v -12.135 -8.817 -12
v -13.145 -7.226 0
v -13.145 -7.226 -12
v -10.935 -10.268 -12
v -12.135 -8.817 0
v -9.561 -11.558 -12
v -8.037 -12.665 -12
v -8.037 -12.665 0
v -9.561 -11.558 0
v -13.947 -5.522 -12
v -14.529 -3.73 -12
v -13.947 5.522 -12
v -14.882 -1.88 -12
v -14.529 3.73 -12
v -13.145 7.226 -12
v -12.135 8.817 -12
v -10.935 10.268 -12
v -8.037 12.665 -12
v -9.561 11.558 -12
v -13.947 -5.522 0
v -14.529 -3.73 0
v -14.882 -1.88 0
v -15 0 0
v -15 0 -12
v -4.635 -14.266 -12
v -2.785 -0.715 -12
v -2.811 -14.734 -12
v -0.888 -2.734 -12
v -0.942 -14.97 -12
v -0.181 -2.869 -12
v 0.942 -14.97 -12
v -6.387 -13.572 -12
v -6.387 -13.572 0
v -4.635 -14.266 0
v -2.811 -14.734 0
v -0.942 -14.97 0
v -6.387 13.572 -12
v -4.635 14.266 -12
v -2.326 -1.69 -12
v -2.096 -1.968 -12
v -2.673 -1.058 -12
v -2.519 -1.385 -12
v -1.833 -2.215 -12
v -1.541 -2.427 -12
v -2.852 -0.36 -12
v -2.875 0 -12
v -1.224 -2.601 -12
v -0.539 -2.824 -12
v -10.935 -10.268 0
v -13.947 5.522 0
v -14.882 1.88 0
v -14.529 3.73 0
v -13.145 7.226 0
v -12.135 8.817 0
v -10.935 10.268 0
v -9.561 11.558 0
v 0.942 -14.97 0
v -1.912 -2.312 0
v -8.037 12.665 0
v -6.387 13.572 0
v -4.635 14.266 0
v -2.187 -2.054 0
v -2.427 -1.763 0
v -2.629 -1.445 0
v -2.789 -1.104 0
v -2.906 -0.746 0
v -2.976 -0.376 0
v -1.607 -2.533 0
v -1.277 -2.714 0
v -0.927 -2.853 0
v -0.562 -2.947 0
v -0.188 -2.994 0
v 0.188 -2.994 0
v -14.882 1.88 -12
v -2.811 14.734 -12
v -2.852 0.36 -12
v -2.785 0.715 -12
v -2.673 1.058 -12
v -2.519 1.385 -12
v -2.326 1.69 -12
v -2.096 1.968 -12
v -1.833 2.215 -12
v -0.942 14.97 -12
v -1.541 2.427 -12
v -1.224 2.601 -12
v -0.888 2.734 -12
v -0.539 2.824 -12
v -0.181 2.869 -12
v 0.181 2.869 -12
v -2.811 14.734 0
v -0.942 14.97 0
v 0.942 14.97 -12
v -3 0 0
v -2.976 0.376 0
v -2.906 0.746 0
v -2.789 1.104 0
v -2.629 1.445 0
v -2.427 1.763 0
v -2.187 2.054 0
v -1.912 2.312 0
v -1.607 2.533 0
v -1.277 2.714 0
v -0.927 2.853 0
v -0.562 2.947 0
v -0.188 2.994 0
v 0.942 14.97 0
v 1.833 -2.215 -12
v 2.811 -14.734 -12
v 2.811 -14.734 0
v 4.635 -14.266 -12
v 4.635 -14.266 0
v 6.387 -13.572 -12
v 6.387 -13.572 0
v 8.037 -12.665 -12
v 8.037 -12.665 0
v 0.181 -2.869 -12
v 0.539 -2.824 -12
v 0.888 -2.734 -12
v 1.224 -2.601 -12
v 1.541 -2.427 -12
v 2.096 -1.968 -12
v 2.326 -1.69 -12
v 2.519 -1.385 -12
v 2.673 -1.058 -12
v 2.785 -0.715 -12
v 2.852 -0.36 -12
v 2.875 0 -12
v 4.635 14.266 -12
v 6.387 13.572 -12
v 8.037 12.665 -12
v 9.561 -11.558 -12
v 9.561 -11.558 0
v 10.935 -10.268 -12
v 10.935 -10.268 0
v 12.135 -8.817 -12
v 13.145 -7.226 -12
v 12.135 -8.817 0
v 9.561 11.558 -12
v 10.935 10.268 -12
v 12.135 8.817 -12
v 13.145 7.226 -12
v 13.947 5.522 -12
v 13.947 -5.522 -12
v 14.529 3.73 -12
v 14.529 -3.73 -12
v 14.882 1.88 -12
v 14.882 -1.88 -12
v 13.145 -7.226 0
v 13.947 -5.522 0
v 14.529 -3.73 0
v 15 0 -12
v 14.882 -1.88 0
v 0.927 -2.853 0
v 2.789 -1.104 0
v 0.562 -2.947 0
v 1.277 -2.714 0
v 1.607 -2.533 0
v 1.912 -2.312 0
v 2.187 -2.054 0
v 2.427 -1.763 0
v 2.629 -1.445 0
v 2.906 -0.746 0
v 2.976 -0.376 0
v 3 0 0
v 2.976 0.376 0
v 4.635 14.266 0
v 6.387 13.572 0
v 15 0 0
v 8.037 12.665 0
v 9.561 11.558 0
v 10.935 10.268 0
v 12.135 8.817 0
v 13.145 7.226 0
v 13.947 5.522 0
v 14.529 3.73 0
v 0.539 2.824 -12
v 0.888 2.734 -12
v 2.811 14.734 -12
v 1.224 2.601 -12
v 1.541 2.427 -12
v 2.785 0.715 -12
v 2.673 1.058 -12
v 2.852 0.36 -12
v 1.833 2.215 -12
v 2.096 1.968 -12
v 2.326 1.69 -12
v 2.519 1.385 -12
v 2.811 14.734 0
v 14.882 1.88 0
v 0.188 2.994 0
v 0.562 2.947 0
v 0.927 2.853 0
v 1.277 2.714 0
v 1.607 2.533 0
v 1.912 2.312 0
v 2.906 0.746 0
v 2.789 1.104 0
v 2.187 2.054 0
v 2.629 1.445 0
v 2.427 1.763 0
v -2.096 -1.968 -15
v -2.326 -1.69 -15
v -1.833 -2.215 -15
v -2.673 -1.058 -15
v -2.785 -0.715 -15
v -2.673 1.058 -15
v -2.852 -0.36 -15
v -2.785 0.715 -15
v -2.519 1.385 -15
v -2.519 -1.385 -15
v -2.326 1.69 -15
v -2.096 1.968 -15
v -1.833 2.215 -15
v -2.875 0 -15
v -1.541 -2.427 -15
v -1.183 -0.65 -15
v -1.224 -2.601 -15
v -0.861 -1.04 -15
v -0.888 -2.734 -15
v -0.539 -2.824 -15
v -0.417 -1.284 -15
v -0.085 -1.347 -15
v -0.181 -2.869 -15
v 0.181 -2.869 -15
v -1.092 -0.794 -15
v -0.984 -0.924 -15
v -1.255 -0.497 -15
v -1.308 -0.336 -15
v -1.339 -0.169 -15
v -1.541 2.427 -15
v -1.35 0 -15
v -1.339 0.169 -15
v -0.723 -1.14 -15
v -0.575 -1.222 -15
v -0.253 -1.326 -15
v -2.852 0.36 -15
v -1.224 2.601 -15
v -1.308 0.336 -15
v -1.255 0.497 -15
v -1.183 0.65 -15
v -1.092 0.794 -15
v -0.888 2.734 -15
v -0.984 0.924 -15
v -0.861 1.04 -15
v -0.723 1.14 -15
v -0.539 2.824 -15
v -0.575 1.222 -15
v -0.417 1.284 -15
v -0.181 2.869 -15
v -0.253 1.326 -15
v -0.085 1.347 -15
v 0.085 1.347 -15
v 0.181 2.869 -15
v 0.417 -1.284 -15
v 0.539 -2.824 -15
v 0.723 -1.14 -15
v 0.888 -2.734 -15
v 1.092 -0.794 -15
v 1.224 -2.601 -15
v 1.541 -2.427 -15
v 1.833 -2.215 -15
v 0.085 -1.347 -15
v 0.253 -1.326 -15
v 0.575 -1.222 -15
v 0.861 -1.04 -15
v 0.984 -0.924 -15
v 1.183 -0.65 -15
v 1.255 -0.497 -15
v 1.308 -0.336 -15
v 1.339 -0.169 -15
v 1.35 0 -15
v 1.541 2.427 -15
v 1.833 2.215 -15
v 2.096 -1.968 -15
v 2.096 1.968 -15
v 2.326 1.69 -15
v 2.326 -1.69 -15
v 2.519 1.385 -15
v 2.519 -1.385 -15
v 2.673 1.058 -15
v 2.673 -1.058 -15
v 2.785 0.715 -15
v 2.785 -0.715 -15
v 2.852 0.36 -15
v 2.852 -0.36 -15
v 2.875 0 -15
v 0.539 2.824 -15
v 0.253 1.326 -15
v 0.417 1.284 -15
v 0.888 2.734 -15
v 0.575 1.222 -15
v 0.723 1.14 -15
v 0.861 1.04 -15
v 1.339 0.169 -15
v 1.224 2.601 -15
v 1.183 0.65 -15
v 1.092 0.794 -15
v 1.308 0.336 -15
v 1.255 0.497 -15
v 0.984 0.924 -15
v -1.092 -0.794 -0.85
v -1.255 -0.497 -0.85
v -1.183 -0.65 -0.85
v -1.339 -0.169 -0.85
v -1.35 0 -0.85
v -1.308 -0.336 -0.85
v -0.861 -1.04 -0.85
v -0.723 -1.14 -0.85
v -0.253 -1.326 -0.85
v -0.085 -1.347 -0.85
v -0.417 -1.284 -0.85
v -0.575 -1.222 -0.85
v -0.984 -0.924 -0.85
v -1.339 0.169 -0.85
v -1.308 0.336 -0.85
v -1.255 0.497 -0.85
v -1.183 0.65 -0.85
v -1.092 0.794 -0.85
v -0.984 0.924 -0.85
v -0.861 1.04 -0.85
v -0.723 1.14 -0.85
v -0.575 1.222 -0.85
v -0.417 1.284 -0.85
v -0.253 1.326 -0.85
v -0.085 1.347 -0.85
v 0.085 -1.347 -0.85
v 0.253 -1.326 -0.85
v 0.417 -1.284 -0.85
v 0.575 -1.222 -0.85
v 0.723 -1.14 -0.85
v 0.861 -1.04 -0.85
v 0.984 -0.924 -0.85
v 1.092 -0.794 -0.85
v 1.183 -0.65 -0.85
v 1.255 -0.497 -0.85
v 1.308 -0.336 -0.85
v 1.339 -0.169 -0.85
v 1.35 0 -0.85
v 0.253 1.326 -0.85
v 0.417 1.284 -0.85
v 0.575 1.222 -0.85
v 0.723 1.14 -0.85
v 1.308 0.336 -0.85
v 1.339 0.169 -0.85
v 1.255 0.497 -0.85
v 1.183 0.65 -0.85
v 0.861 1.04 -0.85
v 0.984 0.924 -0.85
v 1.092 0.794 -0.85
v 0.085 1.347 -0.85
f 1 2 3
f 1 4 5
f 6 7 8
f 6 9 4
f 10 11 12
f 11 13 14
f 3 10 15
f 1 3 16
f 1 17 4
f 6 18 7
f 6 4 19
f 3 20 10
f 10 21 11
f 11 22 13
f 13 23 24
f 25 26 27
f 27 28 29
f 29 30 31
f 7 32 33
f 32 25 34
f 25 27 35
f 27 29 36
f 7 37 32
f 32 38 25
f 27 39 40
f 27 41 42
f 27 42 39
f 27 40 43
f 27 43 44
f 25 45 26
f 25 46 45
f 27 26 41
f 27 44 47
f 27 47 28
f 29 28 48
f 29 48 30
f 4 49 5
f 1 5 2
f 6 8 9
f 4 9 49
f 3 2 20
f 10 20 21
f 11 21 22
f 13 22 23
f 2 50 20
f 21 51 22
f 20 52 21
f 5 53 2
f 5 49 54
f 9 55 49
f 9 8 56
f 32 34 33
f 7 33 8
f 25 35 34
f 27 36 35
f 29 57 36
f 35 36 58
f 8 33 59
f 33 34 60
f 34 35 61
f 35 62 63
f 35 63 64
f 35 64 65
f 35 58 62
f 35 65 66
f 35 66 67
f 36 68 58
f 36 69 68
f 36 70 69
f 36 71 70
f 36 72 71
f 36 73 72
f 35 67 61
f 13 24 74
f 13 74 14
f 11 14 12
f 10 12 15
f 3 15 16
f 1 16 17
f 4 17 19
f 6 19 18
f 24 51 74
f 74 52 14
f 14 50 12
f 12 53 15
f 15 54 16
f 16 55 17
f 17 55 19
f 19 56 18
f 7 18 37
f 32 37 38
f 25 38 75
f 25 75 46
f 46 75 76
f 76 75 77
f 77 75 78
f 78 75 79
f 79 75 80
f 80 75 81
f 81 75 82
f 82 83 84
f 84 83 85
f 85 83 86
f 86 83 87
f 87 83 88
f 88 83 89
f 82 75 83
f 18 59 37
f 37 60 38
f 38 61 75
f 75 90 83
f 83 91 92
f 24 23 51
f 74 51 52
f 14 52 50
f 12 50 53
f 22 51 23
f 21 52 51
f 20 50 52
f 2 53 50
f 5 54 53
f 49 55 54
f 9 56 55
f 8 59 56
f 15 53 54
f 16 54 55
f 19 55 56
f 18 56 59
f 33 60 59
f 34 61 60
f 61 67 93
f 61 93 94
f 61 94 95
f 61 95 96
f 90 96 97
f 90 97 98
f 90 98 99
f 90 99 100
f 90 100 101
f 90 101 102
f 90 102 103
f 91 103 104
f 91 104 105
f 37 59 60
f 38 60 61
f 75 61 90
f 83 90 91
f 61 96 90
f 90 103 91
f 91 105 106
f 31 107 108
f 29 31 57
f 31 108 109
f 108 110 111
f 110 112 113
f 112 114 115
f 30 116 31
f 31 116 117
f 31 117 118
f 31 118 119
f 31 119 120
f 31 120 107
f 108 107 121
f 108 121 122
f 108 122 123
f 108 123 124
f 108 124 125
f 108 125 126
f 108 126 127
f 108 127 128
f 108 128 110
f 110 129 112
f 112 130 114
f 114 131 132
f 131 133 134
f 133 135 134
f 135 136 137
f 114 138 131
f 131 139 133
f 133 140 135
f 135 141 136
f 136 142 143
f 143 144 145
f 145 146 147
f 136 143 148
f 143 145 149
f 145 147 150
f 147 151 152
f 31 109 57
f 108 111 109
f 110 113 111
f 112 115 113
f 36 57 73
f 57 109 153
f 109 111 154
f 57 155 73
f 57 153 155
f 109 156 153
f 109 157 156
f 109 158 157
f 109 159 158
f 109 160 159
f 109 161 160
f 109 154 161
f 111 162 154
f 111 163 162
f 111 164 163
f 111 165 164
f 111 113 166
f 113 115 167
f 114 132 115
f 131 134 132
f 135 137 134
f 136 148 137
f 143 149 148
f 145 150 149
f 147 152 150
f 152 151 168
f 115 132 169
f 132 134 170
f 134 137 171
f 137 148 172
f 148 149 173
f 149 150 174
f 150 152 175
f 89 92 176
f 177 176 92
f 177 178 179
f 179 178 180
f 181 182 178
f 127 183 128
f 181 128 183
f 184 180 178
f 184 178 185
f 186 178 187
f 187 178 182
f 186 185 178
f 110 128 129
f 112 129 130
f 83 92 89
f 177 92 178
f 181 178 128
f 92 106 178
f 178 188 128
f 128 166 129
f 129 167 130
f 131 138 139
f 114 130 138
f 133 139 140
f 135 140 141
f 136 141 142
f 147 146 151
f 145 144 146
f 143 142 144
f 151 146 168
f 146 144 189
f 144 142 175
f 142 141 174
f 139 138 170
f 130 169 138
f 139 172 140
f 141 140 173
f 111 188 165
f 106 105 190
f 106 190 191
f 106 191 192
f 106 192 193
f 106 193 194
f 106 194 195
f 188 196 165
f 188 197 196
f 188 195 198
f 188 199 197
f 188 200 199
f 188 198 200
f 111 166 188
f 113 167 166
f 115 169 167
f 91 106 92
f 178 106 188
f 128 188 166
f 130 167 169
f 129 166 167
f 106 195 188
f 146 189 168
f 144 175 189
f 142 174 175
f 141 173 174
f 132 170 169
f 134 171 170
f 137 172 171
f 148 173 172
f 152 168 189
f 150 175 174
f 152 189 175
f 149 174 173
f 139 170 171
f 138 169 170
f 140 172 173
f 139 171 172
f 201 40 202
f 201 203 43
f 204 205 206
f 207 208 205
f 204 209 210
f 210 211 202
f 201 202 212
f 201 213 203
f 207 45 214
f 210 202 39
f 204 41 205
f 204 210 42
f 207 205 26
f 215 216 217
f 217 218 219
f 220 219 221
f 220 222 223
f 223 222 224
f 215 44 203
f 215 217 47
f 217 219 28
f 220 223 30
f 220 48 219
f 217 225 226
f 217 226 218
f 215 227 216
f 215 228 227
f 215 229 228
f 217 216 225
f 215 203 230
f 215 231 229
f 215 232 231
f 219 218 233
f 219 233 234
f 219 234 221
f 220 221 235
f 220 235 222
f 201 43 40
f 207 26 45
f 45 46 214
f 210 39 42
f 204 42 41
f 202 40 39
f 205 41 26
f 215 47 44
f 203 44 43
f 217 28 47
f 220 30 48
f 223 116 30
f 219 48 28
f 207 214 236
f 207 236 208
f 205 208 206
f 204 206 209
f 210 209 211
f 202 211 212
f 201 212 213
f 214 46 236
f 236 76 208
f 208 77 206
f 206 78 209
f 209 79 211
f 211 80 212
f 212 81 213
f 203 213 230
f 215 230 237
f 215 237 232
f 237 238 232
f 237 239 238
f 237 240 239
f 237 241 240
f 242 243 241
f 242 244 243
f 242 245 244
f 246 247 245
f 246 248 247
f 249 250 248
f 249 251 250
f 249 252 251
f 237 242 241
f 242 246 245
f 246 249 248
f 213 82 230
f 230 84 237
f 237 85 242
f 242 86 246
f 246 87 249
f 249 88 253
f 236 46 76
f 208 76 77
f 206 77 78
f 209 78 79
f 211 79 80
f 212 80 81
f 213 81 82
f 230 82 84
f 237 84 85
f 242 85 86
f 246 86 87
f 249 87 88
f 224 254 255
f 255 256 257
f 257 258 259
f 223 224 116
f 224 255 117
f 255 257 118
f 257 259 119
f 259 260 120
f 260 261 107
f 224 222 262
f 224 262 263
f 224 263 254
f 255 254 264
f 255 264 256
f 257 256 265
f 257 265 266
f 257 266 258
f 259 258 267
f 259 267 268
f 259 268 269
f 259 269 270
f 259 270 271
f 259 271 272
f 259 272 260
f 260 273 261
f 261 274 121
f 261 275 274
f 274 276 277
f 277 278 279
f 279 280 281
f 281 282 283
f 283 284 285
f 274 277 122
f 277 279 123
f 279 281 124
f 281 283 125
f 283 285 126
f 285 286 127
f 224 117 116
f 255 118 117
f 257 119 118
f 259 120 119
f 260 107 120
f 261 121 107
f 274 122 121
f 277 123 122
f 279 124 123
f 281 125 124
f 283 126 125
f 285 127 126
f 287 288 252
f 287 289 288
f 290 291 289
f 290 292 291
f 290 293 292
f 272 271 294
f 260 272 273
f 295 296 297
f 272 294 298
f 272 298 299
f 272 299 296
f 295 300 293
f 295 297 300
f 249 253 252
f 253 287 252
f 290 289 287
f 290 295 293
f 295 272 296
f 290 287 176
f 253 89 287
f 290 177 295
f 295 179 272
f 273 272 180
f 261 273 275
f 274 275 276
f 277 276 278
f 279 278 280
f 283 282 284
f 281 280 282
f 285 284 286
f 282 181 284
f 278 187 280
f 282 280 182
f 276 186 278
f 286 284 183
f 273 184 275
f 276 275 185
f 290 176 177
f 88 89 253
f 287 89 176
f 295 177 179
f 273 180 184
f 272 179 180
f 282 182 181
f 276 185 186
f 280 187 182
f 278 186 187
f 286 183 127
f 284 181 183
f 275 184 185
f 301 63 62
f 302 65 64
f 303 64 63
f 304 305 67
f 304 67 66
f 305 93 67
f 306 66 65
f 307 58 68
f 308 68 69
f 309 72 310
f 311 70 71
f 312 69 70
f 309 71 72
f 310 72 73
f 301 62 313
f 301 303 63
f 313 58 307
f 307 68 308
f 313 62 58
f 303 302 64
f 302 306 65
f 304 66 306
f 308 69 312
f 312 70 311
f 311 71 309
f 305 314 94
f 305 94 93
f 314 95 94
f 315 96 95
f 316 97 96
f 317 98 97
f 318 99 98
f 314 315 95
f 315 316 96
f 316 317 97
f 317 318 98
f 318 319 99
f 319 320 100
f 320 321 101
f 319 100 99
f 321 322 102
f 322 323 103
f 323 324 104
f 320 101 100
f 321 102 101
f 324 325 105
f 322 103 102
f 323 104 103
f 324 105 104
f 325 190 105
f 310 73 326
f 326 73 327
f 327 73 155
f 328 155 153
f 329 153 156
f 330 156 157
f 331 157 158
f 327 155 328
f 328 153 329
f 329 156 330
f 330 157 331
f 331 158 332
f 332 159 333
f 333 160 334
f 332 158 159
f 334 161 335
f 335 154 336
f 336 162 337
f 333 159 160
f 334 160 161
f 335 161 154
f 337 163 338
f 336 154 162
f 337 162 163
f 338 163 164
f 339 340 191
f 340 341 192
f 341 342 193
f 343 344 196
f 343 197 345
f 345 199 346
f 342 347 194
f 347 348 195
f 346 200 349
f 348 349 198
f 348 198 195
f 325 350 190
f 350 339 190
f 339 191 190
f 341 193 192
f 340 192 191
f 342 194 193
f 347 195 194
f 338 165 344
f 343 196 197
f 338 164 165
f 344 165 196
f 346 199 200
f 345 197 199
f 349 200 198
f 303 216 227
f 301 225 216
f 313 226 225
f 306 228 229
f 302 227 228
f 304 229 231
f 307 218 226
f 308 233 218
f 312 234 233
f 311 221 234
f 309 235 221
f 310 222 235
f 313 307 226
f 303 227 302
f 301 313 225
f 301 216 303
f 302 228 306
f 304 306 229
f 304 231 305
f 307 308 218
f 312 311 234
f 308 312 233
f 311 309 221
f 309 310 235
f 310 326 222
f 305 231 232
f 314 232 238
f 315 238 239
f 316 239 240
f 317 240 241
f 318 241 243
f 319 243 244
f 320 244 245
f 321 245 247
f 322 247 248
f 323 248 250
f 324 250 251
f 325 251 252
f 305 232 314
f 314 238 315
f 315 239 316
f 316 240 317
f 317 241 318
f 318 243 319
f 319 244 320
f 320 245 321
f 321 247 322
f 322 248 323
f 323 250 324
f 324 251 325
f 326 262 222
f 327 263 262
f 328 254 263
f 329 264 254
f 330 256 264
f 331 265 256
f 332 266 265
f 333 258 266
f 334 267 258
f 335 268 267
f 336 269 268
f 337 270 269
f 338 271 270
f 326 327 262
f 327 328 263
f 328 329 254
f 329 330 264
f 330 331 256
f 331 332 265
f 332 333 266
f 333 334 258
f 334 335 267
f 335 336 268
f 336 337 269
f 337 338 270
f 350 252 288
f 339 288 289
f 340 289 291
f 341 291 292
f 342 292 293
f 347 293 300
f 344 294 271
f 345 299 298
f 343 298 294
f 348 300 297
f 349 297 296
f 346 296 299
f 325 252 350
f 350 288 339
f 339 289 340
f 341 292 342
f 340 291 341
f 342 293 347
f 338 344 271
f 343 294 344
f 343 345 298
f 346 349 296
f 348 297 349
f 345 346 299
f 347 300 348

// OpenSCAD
$fn = 50;


difference() {
	union() {
		translate(v = [0, 0, -12.0000000000]) {
			cylinder(h = 12, r = 15.0000000000);
		}
		#translate(v = [0, 0, -15.0000000000]) {
			cylinder(h = 15, r = 2.8750000000);
		}
	}
	union() {
		translate(v = [0, 0, 0]) {
			rotate(a = [0, 0, 0]) {
				difference() {
					union() {
						translate(v = [0, 0, -15.0000000000]) {
							cylinder(h = 15, r = 1.0000000000);
						}
						translate(v = [0, 0, -0.8500000000]) {
							cylinder(h = 0.8500000000, r1 = 1.3500000000, r2 = 3.0000000000);
						}
						translate(v = [0, 0, -15.0000000000]) {
							cylinder(h = 15, r = 1.3500000000);
						}
						translate(v = [0, 0, -15.0000000000]) {
							cylinder(h = 15, r = 1.0000000000);
						}
					}
					union();
				}
			}
		}
	}
}
